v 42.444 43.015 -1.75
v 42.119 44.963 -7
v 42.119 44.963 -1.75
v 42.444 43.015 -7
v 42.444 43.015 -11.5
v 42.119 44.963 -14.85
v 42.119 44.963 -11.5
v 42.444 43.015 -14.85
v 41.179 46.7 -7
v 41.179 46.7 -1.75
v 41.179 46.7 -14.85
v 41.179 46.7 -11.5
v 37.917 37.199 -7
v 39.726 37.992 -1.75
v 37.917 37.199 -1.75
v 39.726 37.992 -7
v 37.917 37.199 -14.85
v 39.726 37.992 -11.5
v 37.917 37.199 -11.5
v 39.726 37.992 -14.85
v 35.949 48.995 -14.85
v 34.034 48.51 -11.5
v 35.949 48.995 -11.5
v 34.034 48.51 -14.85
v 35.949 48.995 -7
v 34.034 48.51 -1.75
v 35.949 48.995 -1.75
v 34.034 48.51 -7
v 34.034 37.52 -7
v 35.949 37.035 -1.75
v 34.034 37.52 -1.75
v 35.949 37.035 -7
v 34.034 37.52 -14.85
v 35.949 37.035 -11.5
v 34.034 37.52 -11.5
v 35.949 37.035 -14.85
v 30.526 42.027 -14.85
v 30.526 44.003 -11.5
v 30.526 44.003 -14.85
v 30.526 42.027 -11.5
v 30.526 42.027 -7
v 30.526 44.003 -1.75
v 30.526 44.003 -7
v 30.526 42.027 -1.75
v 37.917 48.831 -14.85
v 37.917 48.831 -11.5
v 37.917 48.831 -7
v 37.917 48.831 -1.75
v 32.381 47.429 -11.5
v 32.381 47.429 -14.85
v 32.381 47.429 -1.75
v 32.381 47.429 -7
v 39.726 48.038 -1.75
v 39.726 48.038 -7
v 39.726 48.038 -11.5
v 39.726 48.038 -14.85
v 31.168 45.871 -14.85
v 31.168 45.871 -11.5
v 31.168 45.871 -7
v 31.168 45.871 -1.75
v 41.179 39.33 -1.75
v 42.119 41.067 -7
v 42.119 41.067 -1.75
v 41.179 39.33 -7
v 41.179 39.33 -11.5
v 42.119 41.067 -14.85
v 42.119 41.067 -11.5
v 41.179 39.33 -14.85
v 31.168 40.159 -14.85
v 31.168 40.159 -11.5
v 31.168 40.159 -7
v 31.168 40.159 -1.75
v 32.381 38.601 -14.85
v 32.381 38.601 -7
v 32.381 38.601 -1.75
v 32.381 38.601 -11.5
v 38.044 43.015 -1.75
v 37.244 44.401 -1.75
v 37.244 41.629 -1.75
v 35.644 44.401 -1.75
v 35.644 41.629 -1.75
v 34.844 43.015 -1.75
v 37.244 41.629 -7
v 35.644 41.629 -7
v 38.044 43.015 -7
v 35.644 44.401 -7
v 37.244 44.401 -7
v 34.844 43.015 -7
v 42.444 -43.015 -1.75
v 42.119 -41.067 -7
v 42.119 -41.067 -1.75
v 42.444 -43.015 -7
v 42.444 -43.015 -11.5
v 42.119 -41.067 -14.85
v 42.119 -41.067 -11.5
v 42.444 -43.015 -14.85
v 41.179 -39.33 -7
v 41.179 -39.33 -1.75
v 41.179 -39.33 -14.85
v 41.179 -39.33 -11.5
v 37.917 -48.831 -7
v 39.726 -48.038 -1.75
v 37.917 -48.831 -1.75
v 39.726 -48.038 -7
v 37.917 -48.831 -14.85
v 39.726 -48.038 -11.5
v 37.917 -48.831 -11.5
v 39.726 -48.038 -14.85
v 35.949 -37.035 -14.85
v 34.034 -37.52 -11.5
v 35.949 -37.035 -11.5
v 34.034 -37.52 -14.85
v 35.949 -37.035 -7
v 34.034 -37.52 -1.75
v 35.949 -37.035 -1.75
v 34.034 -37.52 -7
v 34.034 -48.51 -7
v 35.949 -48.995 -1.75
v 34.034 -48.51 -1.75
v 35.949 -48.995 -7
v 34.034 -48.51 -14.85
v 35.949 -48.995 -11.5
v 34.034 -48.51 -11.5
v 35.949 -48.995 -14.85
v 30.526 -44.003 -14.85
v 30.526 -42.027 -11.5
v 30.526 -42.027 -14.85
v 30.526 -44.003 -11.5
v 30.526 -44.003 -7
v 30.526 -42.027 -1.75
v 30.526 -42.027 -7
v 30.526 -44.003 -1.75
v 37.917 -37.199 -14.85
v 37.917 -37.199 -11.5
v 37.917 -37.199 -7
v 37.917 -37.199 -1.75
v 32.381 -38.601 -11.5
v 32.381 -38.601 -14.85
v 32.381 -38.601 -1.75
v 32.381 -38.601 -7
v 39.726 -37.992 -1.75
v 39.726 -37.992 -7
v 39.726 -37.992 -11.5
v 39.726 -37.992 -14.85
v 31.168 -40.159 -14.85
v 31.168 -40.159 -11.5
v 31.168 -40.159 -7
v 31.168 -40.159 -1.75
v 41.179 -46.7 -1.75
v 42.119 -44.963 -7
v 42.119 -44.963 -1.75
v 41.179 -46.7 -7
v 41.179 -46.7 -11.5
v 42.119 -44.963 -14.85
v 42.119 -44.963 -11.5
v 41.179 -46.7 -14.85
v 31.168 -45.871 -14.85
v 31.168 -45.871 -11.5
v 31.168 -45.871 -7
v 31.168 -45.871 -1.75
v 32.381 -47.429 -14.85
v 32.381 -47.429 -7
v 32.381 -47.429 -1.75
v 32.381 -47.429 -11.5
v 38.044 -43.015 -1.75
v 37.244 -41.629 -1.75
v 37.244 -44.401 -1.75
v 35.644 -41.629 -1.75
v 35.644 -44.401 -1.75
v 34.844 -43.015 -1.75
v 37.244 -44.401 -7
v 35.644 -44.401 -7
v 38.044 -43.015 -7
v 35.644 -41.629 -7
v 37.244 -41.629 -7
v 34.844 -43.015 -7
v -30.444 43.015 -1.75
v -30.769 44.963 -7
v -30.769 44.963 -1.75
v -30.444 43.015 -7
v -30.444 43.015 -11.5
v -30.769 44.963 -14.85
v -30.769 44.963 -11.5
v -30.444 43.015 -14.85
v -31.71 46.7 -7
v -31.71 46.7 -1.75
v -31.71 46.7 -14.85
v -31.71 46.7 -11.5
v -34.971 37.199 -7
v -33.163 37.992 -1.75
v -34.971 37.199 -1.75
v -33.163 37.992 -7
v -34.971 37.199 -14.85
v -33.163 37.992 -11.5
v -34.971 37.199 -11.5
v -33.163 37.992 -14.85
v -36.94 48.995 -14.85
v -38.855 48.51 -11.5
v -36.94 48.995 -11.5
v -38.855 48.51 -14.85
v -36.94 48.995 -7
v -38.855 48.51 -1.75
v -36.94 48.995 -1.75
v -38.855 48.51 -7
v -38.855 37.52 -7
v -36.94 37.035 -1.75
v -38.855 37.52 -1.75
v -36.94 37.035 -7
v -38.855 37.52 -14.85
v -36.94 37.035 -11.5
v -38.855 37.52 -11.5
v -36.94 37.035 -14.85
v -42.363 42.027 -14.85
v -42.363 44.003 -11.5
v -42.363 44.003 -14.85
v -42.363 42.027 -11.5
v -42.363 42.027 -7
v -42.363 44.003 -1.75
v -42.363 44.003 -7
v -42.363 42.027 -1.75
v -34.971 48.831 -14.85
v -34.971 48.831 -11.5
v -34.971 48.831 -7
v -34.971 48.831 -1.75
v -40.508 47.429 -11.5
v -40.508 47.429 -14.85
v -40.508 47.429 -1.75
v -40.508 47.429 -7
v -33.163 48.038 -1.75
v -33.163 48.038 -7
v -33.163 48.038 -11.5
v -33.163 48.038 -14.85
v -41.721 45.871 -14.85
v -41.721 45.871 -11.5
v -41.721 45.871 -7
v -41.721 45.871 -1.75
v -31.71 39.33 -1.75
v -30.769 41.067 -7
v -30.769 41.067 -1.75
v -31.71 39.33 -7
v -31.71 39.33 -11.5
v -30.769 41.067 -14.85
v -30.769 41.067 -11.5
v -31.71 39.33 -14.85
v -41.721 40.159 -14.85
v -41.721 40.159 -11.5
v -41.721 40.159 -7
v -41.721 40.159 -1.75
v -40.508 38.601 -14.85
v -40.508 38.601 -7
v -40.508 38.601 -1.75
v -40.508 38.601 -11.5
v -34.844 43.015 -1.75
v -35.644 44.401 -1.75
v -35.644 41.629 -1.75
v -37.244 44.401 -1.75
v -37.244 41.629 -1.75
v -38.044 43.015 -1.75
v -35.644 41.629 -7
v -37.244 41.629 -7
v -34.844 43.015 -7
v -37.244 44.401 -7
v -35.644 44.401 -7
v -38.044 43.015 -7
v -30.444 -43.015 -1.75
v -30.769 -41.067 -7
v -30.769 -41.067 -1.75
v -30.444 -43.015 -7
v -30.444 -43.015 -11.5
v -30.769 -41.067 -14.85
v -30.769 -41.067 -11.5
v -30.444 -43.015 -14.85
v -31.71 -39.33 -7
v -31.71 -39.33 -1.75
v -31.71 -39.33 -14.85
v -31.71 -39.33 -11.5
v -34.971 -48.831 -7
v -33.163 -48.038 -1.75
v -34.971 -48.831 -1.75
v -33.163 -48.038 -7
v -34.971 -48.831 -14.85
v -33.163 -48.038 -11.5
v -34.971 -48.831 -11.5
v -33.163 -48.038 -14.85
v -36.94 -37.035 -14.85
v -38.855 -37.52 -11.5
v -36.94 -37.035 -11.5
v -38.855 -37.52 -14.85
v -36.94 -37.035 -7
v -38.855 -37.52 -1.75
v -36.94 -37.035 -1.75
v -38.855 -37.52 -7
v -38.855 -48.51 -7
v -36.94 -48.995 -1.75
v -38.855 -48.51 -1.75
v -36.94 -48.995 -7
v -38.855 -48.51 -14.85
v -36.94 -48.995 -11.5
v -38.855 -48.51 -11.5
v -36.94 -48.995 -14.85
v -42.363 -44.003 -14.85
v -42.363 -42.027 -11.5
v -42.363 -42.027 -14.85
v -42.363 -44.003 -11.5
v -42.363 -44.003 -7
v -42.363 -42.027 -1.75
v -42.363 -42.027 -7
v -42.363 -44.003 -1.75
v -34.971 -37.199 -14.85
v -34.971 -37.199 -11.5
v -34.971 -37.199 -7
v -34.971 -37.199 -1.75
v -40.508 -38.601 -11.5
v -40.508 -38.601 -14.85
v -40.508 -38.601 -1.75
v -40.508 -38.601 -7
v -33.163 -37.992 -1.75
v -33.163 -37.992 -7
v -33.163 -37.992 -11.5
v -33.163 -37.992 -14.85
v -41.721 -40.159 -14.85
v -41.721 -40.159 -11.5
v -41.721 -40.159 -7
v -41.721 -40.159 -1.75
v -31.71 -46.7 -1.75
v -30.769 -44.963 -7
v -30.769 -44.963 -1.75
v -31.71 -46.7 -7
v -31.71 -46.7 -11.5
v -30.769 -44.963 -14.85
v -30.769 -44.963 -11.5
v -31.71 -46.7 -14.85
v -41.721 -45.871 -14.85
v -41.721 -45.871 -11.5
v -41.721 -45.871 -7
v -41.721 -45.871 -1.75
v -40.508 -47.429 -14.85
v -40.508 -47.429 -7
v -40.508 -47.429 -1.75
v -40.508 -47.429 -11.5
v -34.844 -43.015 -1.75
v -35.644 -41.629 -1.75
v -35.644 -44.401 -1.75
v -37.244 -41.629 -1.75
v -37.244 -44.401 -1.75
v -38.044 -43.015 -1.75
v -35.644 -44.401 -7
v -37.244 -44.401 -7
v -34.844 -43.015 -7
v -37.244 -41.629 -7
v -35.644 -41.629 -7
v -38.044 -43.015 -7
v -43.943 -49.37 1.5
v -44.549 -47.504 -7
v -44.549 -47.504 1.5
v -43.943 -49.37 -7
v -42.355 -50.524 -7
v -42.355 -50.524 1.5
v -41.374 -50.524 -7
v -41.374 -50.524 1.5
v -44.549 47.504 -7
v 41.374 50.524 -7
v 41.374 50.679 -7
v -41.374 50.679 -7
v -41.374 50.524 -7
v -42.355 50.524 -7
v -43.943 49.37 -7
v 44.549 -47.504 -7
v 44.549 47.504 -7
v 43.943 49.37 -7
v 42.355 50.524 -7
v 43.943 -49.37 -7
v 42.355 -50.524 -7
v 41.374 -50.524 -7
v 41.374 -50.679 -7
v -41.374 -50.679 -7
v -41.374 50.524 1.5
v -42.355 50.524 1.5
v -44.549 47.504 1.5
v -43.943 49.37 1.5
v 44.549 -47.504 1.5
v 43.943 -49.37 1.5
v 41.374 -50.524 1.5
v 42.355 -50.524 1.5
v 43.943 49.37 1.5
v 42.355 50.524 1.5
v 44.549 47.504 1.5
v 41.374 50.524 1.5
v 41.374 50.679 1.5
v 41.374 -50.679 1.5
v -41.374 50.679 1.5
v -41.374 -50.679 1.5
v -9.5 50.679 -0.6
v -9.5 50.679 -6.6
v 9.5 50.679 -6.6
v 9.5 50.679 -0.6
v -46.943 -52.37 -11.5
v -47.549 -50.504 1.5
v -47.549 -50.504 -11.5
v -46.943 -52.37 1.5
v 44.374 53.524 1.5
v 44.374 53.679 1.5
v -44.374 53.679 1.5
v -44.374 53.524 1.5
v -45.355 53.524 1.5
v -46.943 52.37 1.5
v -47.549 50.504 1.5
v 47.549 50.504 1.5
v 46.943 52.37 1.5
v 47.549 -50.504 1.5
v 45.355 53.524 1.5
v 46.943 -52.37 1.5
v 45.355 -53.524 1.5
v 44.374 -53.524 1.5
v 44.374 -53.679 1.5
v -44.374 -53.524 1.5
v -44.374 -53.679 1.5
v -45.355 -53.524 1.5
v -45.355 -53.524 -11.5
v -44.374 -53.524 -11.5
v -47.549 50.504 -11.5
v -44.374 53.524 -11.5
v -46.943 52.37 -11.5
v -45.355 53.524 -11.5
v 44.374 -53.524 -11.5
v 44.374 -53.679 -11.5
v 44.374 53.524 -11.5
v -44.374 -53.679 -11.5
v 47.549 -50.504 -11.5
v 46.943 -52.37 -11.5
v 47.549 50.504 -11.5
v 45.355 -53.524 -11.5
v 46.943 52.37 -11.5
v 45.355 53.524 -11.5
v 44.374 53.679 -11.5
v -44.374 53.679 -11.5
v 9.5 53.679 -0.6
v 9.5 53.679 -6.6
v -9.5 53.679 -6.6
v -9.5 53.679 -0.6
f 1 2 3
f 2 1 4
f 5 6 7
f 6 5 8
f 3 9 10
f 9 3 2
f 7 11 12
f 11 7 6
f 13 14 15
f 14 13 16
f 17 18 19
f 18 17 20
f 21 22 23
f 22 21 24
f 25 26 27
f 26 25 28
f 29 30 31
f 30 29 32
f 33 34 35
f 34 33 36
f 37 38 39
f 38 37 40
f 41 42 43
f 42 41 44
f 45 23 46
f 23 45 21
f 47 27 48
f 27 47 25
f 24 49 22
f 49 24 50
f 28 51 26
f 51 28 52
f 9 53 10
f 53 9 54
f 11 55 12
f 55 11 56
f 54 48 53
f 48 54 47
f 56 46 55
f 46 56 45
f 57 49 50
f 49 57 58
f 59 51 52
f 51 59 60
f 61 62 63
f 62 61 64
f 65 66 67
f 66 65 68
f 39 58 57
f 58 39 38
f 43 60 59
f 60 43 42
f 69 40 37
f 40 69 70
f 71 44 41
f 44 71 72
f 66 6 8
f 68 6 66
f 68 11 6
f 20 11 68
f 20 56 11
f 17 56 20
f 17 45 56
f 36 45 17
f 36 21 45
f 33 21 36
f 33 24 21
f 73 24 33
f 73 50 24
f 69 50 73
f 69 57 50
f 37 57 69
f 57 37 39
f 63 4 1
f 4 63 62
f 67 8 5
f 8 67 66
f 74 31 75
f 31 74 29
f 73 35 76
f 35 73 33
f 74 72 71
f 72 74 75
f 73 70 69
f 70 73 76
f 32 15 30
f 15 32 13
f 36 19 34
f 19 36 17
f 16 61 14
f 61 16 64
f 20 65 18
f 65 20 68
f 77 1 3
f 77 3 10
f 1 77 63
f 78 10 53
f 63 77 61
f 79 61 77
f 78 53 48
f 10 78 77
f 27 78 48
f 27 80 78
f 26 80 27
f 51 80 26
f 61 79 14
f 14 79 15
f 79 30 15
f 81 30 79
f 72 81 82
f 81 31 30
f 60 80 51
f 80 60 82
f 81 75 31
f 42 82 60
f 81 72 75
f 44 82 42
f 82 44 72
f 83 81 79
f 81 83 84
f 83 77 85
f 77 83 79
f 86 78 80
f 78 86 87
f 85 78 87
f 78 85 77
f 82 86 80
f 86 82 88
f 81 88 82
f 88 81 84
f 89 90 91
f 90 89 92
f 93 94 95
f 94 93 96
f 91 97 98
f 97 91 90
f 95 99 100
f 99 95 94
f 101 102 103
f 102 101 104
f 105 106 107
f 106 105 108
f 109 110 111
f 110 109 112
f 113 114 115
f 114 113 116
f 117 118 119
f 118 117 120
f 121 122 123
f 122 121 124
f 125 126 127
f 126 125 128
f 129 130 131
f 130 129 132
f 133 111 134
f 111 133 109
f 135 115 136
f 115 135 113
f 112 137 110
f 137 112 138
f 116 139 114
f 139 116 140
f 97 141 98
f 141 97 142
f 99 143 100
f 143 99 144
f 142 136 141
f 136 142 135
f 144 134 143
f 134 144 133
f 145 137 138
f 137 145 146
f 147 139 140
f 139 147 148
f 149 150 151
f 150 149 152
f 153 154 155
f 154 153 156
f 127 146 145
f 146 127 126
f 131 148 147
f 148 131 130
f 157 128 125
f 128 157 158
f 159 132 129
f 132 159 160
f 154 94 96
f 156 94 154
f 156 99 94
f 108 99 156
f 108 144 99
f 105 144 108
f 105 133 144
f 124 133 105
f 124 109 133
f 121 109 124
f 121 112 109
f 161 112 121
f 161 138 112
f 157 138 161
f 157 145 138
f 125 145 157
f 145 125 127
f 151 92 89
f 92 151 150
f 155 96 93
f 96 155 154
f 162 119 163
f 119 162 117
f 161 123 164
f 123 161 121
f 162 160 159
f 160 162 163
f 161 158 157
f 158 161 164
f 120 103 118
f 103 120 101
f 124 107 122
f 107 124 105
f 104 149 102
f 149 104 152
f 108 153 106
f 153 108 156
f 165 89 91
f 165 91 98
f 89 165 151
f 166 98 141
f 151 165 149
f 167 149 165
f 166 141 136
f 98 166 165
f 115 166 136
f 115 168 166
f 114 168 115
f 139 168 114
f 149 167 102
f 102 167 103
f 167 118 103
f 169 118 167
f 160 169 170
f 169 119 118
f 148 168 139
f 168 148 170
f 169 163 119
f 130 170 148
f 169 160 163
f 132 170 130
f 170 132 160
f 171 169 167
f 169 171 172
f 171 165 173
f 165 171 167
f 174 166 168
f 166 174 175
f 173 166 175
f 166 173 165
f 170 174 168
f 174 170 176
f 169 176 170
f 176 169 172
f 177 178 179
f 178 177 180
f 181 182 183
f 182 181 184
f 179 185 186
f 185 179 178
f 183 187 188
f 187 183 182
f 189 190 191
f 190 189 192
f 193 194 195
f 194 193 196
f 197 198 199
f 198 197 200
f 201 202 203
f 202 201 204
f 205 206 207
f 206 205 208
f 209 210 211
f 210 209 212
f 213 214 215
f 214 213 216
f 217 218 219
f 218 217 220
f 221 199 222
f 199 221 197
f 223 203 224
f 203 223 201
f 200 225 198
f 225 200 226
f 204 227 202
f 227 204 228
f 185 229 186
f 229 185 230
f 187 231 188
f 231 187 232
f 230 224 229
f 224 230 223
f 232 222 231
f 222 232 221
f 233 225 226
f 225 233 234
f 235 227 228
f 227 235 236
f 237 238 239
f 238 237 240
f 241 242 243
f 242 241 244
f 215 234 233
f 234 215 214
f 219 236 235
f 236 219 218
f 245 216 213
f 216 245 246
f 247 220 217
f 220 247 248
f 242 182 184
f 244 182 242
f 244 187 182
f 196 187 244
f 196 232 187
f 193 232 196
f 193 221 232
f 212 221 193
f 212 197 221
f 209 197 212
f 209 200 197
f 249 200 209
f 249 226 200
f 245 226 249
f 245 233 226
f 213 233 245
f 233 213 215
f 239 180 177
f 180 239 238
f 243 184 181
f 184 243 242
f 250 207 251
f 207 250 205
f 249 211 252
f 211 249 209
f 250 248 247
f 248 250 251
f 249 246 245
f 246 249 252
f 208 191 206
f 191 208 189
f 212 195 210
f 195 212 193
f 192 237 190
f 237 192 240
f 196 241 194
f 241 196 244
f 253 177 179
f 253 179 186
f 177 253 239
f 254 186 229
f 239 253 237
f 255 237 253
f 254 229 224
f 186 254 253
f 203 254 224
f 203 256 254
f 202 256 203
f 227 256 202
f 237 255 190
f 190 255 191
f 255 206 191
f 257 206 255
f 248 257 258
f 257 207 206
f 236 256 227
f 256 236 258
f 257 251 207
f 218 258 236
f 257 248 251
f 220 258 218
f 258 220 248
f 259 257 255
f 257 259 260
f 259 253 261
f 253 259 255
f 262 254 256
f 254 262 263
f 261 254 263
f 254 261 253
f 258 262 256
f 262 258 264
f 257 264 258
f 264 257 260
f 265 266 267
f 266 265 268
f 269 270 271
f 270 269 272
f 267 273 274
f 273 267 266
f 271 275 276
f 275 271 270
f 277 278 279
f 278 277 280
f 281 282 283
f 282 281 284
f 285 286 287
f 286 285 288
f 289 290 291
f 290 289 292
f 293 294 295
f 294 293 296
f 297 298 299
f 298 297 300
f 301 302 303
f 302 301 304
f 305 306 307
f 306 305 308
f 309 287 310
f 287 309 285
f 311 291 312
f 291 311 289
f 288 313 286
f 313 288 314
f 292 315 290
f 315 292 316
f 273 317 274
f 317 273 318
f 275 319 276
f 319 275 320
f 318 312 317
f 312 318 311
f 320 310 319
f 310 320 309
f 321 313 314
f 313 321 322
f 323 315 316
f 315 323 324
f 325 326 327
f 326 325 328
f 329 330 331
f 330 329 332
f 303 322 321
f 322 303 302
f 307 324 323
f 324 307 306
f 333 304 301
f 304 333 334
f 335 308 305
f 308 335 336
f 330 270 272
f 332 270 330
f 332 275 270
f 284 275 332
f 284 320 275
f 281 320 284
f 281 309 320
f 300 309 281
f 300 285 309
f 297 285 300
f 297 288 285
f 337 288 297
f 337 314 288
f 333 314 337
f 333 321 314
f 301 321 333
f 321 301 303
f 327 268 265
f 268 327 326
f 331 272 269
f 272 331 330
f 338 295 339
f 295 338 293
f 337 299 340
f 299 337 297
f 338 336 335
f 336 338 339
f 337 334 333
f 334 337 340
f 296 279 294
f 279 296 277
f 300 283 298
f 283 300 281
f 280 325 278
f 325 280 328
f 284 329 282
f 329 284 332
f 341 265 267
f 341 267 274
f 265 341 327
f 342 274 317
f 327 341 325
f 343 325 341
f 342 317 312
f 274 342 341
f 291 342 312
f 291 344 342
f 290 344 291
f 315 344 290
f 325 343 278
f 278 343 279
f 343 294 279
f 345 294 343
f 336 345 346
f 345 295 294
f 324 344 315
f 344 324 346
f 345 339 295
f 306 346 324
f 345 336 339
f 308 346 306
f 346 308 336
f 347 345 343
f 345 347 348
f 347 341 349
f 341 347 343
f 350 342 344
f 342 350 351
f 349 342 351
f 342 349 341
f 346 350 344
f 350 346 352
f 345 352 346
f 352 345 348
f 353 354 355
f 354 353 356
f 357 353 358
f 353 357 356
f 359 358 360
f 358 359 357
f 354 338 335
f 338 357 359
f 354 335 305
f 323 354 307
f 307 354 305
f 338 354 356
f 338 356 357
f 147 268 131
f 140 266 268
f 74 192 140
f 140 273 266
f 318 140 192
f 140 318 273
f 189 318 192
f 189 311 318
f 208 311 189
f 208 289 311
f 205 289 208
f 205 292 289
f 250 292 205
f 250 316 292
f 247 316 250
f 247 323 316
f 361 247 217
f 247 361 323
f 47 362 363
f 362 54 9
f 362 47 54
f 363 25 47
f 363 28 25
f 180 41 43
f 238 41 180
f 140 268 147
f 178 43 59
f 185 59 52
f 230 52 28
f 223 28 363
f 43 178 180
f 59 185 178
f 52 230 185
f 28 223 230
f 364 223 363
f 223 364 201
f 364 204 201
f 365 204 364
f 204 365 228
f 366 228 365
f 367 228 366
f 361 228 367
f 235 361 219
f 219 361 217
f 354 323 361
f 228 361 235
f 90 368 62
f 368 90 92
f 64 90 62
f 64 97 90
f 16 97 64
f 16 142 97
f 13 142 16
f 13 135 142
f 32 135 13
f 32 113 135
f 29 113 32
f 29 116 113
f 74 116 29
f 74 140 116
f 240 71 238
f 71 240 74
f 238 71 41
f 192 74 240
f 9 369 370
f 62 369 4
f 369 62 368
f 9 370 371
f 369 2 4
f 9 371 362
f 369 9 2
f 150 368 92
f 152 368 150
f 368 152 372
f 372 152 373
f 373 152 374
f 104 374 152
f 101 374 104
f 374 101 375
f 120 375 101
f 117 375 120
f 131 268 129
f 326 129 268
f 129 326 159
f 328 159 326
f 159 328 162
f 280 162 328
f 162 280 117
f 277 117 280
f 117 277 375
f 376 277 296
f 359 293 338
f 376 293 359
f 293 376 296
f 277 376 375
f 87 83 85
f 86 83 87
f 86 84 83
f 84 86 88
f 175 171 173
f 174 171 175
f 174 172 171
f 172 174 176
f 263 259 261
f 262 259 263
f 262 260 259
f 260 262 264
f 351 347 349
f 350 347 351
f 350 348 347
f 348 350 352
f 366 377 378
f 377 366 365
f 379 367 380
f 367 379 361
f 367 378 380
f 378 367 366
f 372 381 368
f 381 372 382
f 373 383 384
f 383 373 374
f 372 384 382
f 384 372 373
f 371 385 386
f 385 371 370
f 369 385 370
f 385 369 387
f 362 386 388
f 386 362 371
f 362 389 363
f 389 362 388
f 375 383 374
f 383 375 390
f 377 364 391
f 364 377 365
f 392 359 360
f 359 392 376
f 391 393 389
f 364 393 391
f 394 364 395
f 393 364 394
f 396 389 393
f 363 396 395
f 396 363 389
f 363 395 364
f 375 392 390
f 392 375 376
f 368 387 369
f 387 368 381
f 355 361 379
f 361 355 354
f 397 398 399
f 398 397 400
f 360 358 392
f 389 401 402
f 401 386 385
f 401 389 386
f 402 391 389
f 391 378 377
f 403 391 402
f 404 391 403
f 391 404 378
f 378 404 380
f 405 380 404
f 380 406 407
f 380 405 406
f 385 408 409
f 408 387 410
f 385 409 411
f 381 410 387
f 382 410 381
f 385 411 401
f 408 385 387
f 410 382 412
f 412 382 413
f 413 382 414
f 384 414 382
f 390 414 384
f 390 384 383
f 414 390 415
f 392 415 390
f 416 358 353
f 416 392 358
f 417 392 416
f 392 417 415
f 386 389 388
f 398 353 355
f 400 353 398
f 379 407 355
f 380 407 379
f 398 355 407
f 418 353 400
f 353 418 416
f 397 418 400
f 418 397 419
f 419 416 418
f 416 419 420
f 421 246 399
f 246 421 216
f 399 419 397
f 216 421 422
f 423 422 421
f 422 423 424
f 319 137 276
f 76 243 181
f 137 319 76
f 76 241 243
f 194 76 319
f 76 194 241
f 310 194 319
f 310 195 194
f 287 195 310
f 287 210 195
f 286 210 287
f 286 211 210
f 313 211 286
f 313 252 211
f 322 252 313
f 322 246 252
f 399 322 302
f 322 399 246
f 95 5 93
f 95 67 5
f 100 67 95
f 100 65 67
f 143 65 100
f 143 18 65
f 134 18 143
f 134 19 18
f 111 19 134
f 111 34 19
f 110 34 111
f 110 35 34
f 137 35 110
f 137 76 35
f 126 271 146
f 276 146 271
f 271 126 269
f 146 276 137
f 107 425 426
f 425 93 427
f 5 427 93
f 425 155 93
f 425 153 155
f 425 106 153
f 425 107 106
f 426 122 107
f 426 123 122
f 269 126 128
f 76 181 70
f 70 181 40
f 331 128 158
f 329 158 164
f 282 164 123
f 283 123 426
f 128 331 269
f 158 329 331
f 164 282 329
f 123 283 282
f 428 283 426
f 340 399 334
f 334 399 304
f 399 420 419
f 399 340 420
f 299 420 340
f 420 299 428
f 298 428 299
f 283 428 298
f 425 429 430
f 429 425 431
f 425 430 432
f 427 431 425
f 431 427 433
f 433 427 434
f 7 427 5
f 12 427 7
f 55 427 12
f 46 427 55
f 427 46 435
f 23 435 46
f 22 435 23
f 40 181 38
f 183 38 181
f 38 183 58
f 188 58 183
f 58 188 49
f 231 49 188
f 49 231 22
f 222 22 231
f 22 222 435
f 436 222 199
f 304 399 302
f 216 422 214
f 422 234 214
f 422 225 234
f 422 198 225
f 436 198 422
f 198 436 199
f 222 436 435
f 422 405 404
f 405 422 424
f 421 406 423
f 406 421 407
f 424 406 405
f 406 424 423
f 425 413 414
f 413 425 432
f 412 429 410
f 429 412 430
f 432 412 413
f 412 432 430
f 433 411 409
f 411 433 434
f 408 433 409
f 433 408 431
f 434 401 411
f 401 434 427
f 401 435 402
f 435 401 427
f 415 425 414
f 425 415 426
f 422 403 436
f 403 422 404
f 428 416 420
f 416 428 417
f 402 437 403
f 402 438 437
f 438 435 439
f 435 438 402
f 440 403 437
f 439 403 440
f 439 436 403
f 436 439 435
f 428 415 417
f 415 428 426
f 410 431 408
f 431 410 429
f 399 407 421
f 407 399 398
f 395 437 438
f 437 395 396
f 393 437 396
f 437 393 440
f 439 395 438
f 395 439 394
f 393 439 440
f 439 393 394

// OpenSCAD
// file: data-access.scad
// Norm Nuts and Bolts - a OpenSCAD library
// Copyright (C) 2012  Johannes Kneer

// This program is free software: you can redistribute it and/or modify
// it under the terms of the GNU General Public License as published by
// the Free Software Foundation, either version 3 of the License, or
// (at your option) any later version.

// This program is distributed in the hope that it will be useful,
// but WITHOUT ANY WARRANTY; without even the implied warranty of
// MERCHANTABILITY or FITNESS FOR A PARTICULAR PURPOSE.  See the
// GNU General Public License for more details.

// You should have received a copy of the GNU General Public License
// along with this program.  If not, see <http://www.gnu.org/licenses/>.


// DATABASE ACCESS FUNCTIONS AND CONSTANTS



// == CONSTANTS ==

// screw table access keys
_NB_S_DESC            = 0;
_NB_S_FAMKEY			    = 1;
_NB_S_LENGTH          = 2;
_NB_S_NOTHREAD_LENGTH = 3;

_NB_F_DESC			      = 0;
_NB_F_OUTER_DIA       = 1;
_NB_F_INNER_DIA       = 2;
_NB_F_LEAD            = 3;
_NB_F_KEY             = 4;
_NB_F_KEY_DEPTH       = 5;
_NB_F_HEAD_HEIGHT     = 6;
_NB_F_HEAD_DIA        = 7;
_NB_F_NUT_KEY         = 8;
_NB_F_NUT_HEIGHT      = 9;
_NB_F_PITCH_FINE      = 10;
_NB_F_PITCH_MEDIUM    = 11;
_NB_F_PITCH_COARSE    = 12;


// == FUNCTIONS ==

// _get_screw("descriptor")   with descriptor = M8x25
//   find the line for a general object in the data matrix

function _get_screw(n) = data_screw[search([n], data_screw)[0]];
function _get_screw_fam(n) = data_screw_fam[search([_get_screw(n)[_NB_S_FAMKEY]], data_screw_fam)[0]];

function _get_fam(n) = data_screw_fam[search([n], data_screw_fam)[0]];


// _get_XXXXX("descriptor") functions
// find a single property in the database

function _get_desc(n)        = _get_screw(n)[_NB_S_DESC];
function _get_famkey(n)         = _get_screw(n)[_NB_S_FAMKEY];
function _get_length(n)      = _get_screw(n)[_NB_S_LENGTH];
function _get_nt_length(n)   = _get_screw(n)[_NB_S_NOTHREAD_LENGTH];

function _get_outer_dia(n)   = _get_screw_fam(n)[_NB_F_OUTER_DIA];
function _get_inner_dia(n)   = _get_screw_fam(n)[_NB_F_INNER_DIA];
function _get_lead(n)        = _get_screw_fam(n)[_NB_F_LEAD];
function _get_head_height(n) = _get_screw_fam(n)[_NB_F_HEAD_HEIGHT];
function _get_head_dia(n)    = _get_screw_fam(n)[_NB_F_HEAD_DIA];
function _get_nut_key(n)     = _get_screw_fam(n)[_NB_F_NUT_KEY];
function _get_nut_height(n)  = _get_screw_fam(n)[_NB_F_NUT_HEIGHT];
function _get_fine_pitch(n)  = _get_screw_fam(n)[_NB_F_PITCH_FINE];
function _get_medium_pitch(n)  = _get_screw_fam(n)[_NB_F_PITCH_MEDIUM];
function _get_coarse_pitch(n)  = _get_screw_fam(n)[_NB_F_PITCH_COARSE];
// main file
// Units: mm
use <MCAD/boxes.scad>
use <cyl_head_bolt.scad>

// PCB
board_width = 81.0987;
board_length = 93.358;
hole_offset_x = 4.105;
hole_offset_y = 3.664;
keypad_x = 66.506;
keypad_y_offset = 6.183;
keypad_x_offset = 7.034; // From the right

/*
// Main board
difference() {
	translate([0, 0, 1]) color("green") roundedBox([board_width, board_length, 1.6], radius=3.175, sidesonly=true);

	// Holes
	translate([board_width / 2 - hole_offset_x, board_length / 2 - hole_offset_y, 0]) cylinder(h=1.7, r=3.2, center=true);
	translate([board_width / 2 - hole_offset_x, -board_length / 2 + hole_offset_y, 0]) cylinder(h=1.7, r=3.2, center=true);
	translate([-board_width / 2 + hole_offset_x, board_length / 2 - hole_offset_y, 0]) cylinder(h=1.7, r=3.2, center=true);
	translate([-board_width / 2 + hole_offset_x, -board_length / 2 + hole_offset_y, 0]) cylinder(h=1.7, r=3.2, center=true);
}

// USB
translate([0, board_length/2, -1.6 * 2]) color("silver") cube([9.0, 7.3533, 1.6], center=true);

// Keys
translate([-((board_width - keypad_x) / 2) + keypad_x_offset, -((board_length - keypad_x) / 2) + keypad_y_offset, 0]) cube([keypad_x, keypad_x, 4], center=true);
*/

// Add 2

// 21×17.8×3.5mm
// Case
difference() {
	translate([0, 0, -5]) roundedBox([board_width + 14, board_length + 14, 13], radius=3.175, sidesonly=true);
	// USB hole
	translate([0, board_length/2, -3.6]) cube([19, 20, 6], center=true);
	// Board hollow
	translate([0, 0, -2]) roundedBox([board_width + 8, board_length + 8, 10], radius=3.175, sidesonly=true);
}

// Holders
module hole_cylinder(h=13.1, ir=2.9, or=6.0) {
	difference() {
		cylinder(h=h, r=or, center=true);
		translate([0, 0, h]) hole_through(name="M3", l=h);
	}
}

translate([+board_width / 2 - hole_offset_x, +board_length / 2 - hole_offset_y, -15/2-0.8]) hole_cylinder();
translate([+board_width / 2 - hole_offset_x, -board_length / 2 + hole_offset_y, -15/2-0.8]) hole_cylinder();
translate([-board_width / 2 + hole_offset_x, +board_length / 2 - hole_offset_y, -15/2-0.8]) hole_cylinder();
translate([-board_width / 2 + hole_offset_x, -board_length / 2 + hole_offset_y, -15/2-0.8]) hole_cylinder();
